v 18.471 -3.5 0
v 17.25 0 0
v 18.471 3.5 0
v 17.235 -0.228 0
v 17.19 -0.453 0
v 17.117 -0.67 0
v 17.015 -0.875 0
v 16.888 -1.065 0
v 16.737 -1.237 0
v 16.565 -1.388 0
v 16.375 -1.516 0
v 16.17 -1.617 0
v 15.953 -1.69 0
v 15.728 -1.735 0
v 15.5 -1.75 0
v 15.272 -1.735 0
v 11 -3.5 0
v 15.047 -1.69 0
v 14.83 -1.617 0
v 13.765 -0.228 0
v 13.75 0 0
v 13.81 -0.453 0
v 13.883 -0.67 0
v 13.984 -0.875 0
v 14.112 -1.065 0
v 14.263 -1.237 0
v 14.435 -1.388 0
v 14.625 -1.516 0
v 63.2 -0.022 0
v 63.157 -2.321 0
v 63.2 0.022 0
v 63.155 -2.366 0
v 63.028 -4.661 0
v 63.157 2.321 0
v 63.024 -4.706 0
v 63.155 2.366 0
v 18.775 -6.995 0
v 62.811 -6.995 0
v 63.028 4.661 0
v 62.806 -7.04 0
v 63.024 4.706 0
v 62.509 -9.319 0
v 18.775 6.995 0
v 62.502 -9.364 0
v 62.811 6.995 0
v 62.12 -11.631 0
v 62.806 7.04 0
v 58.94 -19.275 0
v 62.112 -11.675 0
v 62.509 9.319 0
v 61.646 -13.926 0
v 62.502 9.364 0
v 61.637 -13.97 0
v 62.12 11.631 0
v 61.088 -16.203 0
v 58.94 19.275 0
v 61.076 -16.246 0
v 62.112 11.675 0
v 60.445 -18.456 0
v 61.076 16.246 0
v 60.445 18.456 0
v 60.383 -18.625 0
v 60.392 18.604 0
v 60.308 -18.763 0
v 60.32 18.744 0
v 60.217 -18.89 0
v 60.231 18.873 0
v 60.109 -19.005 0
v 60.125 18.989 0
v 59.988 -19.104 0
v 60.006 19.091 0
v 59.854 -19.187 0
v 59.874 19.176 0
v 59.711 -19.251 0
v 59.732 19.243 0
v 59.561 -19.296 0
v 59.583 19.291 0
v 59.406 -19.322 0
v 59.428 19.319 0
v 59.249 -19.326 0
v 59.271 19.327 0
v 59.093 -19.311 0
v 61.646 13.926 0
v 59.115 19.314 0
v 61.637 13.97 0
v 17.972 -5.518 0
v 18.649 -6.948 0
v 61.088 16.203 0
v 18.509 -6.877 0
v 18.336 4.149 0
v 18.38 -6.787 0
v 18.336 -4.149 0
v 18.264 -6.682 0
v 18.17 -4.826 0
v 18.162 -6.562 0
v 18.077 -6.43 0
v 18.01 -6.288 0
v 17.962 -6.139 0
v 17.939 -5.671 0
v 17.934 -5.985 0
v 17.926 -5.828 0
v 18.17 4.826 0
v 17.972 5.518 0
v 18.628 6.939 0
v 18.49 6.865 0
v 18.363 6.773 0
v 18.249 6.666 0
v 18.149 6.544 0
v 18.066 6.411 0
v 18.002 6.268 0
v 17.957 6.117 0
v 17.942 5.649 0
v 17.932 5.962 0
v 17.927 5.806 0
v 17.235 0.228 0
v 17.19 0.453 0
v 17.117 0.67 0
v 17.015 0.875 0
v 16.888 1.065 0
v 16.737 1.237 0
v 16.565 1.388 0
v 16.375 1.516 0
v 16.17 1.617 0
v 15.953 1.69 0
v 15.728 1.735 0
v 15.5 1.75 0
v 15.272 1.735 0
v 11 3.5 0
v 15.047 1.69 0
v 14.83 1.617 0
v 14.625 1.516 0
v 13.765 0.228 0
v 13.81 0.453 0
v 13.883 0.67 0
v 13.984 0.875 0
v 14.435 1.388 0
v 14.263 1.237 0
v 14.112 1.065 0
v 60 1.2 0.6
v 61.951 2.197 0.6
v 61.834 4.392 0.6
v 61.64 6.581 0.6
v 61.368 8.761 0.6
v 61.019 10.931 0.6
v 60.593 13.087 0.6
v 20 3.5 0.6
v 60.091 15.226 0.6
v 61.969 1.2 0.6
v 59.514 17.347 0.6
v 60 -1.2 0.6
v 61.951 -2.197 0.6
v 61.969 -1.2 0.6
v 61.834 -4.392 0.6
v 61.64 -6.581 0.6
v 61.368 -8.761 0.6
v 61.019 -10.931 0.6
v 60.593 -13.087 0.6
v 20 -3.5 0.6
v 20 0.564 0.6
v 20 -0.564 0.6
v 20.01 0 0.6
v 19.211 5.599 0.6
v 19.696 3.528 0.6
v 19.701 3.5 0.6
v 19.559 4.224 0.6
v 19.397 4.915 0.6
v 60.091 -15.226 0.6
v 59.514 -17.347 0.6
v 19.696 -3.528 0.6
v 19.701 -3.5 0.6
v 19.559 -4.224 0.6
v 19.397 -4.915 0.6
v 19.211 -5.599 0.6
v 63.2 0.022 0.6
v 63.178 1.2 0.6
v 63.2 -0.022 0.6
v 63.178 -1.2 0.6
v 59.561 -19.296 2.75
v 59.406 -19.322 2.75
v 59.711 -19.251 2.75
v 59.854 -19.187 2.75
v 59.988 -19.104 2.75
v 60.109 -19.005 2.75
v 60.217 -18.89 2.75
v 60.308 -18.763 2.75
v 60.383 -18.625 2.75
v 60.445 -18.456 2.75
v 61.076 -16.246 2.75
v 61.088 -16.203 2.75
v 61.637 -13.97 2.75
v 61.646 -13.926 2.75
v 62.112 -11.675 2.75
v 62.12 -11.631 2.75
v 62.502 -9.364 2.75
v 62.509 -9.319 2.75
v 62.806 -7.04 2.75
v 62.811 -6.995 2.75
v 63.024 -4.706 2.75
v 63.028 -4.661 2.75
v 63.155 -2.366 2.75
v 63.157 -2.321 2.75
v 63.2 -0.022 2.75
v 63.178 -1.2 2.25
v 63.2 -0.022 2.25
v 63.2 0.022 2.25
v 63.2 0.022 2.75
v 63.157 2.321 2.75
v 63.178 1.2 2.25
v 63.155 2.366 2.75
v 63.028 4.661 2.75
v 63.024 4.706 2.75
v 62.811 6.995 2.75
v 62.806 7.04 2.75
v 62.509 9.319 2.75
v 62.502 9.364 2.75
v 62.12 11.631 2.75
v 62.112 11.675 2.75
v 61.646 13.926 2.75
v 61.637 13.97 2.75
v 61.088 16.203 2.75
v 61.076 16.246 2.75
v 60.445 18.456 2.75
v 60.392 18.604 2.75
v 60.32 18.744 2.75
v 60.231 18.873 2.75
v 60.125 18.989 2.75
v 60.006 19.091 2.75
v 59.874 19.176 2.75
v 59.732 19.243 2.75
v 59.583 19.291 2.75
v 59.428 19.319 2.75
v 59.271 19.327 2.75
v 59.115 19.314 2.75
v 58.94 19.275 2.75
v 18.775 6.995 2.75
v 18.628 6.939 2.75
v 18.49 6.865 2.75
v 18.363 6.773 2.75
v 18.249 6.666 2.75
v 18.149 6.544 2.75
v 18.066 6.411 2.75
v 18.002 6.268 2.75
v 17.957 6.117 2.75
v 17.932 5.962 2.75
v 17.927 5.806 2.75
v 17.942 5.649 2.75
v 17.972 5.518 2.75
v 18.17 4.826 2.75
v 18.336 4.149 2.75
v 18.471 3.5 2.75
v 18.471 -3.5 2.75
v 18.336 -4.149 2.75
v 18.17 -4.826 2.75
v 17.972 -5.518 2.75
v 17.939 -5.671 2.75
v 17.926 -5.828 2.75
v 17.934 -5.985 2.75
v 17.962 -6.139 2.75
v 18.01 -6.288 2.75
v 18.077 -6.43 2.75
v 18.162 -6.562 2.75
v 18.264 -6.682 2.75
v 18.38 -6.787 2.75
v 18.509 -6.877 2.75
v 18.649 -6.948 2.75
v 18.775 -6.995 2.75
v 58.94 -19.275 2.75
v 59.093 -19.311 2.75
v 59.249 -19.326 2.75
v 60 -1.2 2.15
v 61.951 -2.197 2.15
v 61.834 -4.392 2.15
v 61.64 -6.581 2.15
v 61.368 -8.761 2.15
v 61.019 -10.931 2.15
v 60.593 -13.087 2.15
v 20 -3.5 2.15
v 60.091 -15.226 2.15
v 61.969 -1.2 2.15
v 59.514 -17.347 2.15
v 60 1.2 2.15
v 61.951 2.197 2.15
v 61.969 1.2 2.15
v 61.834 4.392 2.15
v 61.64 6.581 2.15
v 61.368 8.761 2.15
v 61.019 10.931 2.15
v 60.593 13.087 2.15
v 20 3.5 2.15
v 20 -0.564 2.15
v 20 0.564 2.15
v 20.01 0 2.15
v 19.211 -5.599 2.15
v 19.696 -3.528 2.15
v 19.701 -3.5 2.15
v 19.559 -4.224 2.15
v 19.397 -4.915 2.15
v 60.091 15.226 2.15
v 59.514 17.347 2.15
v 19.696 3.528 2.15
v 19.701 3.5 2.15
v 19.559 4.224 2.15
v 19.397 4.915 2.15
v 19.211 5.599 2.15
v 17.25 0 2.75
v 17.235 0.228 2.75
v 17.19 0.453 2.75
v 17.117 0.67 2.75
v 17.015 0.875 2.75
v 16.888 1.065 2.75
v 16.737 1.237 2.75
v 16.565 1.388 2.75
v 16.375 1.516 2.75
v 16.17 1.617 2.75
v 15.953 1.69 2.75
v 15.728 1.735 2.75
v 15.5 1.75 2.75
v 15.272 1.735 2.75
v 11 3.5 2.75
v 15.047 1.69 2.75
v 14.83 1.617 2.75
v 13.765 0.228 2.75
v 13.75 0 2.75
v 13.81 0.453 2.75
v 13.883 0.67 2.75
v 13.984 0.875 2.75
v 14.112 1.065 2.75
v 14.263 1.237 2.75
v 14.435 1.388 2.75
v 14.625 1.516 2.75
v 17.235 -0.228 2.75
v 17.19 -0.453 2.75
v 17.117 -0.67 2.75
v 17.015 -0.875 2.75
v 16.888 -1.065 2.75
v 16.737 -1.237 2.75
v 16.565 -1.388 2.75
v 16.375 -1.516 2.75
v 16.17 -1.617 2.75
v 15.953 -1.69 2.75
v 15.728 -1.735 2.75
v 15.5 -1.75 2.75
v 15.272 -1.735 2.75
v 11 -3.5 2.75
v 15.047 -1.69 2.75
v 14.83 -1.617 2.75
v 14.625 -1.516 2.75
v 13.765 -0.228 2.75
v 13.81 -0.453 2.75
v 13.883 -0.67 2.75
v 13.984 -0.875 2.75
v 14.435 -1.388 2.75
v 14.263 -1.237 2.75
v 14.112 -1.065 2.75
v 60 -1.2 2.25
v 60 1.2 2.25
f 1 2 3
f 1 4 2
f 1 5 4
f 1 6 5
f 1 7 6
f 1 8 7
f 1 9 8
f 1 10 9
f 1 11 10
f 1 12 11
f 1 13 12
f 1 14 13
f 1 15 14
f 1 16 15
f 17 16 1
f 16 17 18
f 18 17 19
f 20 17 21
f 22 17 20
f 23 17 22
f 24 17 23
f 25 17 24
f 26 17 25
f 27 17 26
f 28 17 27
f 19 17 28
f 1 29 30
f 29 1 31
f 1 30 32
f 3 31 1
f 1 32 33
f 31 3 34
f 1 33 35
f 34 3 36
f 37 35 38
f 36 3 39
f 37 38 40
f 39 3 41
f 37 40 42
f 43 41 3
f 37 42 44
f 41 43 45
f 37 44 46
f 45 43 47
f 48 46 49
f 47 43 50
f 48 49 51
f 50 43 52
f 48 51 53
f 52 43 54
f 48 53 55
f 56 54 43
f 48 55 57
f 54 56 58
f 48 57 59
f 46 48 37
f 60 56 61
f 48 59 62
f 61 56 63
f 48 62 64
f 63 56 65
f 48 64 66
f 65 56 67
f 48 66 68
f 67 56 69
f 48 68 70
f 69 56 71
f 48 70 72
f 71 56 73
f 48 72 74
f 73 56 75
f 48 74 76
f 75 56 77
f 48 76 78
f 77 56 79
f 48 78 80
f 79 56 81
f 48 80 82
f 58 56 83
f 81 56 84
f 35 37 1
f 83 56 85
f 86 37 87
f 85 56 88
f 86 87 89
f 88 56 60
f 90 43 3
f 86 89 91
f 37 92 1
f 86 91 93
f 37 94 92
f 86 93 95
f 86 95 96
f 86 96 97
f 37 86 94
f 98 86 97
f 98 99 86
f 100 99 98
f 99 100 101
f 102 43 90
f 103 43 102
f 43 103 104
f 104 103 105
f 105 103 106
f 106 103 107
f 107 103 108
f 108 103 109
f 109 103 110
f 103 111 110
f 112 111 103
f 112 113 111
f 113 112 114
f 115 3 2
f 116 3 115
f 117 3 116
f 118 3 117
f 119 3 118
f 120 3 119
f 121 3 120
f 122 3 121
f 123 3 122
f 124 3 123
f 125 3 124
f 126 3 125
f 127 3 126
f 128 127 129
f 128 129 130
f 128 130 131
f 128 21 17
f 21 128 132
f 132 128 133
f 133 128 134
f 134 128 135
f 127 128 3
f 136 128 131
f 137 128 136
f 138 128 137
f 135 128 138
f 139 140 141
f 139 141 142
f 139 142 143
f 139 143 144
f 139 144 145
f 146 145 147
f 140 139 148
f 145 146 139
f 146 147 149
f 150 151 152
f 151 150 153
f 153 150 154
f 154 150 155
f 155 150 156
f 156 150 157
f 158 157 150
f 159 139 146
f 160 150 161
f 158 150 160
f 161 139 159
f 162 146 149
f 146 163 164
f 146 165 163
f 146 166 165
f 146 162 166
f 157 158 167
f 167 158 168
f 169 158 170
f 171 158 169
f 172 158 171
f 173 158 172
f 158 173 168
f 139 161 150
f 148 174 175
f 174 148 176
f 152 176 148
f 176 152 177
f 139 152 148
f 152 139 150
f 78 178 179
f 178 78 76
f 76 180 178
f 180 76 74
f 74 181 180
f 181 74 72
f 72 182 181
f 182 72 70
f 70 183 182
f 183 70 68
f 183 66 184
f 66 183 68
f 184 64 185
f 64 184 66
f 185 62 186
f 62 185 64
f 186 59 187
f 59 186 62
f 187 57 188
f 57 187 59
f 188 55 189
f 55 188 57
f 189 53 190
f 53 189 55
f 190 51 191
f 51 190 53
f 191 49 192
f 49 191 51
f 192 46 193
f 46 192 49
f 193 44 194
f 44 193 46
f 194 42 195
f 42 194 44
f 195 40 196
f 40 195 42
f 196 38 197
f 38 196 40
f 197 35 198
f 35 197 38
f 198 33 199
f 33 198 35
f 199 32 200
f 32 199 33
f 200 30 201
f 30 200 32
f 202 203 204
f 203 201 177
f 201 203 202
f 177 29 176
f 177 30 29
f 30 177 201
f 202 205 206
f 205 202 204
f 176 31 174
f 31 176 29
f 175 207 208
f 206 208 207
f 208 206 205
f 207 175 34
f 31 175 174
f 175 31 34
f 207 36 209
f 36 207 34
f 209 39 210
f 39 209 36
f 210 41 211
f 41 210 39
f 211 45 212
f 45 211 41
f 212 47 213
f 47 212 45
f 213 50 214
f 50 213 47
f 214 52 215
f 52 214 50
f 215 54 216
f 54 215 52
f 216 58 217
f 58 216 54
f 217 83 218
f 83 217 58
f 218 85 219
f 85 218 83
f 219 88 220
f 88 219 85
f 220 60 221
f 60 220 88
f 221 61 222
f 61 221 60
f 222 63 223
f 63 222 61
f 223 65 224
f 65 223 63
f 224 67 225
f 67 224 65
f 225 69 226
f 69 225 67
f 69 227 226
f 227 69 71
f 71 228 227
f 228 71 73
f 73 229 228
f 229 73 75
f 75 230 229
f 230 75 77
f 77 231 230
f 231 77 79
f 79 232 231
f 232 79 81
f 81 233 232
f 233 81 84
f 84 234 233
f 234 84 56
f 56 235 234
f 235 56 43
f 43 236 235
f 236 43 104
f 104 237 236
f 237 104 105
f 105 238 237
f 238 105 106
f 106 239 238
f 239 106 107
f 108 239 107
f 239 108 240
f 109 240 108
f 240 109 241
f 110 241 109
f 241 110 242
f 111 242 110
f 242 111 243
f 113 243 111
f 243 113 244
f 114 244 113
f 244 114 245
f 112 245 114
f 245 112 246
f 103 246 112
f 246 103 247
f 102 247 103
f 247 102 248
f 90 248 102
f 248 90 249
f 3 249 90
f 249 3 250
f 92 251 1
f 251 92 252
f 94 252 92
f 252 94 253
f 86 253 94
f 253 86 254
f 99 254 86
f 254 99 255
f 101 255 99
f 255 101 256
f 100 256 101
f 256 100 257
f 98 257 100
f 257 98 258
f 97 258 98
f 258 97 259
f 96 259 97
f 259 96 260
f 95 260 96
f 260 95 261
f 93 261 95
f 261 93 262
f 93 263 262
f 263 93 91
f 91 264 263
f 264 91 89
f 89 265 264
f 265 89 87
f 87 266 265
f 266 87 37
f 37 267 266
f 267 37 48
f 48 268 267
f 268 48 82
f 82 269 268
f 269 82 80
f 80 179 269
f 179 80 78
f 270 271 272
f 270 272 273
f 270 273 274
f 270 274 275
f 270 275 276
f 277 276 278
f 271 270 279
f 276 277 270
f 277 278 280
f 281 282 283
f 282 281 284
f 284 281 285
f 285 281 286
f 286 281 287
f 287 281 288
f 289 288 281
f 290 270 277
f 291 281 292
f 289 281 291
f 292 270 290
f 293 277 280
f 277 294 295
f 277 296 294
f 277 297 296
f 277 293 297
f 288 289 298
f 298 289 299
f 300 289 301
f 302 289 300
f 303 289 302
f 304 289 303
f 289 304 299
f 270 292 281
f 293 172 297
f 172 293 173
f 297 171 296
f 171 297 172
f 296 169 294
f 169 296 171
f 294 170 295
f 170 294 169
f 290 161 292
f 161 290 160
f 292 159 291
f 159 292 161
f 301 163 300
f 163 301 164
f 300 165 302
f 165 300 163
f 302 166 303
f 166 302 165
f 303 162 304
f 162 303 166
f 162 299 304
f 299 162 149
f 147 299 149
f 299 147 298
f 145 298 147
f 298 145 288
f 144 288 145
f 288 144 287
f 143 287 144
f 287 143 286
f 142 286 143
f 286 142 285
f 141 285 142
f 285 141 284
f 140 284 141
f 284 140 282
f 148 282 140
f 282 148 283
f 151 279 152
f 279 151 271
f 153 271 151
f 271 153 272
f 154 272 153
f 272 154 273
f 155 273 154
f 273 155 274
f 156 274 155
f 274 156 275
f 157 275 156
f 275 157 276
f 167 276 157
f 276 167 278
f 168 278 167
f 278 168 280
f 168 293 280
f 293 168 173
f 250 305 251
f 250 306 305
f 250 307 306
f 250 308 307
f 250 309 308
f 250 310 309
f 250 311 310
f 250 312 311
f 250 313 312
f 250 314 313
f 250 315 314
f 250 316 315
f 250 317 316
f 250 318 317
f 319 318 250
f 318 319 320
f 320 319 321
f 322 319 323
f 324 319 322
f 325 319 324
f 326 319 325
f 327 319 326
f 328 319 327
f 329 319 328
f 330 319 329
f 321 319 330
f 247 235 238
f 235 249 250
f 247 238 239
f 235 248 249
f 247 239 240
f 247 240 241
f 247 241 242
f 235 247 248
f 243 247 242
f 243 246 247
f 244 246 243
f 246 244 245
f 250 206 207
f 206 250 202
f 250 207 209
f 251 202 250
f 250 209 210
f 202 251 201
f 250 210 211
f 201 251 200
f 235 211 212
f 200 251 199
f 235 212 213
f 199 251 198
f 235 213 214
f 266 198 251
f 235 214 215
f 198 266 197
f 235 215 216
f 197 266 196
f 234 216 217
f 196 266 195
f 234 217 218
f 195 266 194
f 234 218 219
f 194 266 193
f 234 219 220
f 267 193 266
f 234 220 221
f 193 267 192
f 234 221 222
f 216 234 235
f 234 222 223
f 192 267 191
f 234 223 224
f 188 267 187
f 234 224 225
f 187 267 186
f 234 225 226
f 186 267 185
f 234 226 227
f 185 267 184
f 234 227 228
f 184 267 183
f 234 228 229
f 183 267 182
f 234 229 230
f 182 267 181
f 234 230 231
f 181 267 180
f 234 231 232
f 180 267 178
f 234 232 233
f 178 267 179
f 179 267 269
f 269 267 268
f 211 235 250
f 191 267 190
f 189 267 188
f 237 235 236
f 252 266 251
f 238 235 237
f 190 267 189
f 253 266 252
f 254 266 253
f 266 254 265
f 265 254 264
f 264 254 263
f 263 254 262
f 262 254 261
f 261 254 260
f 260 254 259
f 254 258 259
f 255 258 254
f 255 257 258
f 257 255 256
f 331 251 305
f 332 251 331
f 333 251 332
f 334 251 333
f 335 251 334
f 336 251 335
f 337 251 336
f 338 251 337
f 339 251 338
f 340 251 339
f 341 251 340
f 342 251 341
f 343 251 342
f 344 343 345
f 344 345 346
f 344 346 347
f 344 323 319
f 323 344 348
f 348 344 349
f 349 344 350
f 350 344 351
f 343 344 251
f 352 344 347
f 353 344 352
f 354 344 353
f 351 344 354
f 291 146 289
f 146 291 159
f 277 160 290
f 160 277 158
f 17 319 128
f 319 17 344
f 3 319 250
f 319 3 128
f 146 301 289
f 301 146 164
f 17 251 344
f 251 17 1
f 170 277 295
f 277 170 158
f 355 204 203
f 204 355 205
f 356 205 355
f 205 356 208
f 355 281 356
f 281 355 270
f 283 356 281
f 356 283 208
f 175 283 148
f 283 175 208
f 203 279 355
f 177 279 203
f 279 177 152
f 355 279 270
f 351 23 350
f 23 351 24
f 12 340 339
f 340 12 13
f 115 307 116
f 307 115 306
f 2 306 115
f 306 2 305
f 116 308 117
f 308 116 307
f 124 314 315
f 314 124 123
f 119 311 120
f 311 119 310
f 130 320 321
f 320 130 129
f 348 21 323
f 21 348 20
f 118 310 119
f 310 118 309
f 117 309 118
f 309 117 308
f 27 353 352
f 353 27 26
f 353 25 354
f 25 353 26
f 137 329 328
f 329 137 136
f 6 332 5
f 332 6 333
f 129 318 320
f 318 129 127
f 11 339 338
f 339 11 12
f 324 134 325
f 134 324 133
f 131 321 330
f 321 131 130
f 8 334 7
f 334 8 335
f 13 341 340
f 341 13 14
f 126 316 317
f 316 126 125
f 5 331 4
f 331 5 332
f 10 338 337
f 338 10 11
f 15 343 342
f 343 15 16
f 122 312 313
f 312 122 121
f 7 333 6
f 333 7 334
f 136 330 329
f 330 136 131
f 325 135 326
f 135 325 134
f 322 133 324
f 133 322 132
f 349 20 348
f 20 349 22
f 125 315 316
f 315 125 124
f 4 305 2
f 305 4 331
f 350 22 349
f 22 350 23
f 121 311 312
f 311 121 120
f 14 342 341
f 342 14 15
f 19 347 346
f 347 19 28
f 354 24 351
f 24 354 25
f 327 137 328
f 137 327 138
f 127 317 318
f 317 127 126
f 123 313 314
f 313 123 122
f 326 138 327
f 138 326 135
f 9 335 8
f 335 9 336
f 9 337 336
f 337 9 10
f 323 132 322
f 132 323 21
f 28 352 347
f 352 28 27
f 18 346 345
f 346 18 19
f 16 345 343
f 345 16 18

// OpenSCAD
// file: parameters.scad
// =============================================================================
// Gen-AF Stacked dual-stator mid-rotor Halbach copper-max — WOUND-AWARE
// TWO wound pancake stators | ONE mid dual-face Halbach rotor | outer endbells
// Beats Gen-AF: thinner m2m 5.11, larger copper window, 135 t / coil
// =============================================================================

wire_awg            = 26;
wire_od             = 0.45;
turns               = 135;      // 9 coils/stator ×2 = 18 ×135 ×~0.118 ≈ 287 m
fill                = 0.70;
layers_per_face     = 2;
wind_build_axial    = layers_per_face * wire_od * fill;   // 0.63
wind_build_radial   = 2.8 * wire_od * fill;               // 0.882

coil_id_r           = 20.0;     // larger than Gen-AF 21–60
coil_od_r           = 62.0;
span_deg            = 34.0;     // 9 stations × 40°
former_web          = 1.55;
flange_t            = 0.60;
wall                = 1.2;
slot_w              = 2.4;
mount_hole          = 3.5;
tab_len             = 7.0;

former_bare_h       = former_web + 2 * flange_t;            // 2.75
coil_envelope_h     = former_bare_h + 2 * wind_build_axial; // 4.01

run_clear           = 0.55;
gap_spacer_h        = run_clear + wind_build_axial;         // 1.18
m2m                 = coil_envelope_h + 2 * run_clear;      // 5.11 per gap (beats Gen-AF 5.46)

coil_stations       = 9;        // per stator; ×2 = 18 total
bay_r_in            = coil_id_r - 2.0 - wind_build_radial;
bay_r_out           = coil_od_r + 2.0 + wind_build_radial;
bay_span            = span_deg + 4.0;
bay_offset          = 2.0;
bay_depth           = former_bare_h + wind_build_axial;
stator_back_web     = 2.0;
stator_thick        = bay_depth + stator_back_web;
stator_od           = 156.0;
shaft_clear_stator  = 40.0;
coil_mount_r        = 30.0;

large_pocket_d      = 20.3;
small_pocket_d      = 5.3;
pocket_h            = 5.2;
large_n             = 8;
R_large             = 52.0;
R_small_inner       = 40.0;
R_small_mid         = 52.0;
R_small_outer       = 64.0;
carrier_od          = 152.0;
mid_carrier_thick   = 12.0;
hub_h               = 10.0;
hub_od              = 30.0;
rotor_b_offset_deg  = 22.5;

shaft_bore          = 8.35;
bearing_d           = 21.85;
bearing_h           = 7.2;
m3_clear            = 3.5;
bolt_r_inner        = 36.0;
bolt_n_inner        = 6;
flange_bolt_r       = 72.0;
flange_bolt_n       = 6;
brace_r             = 68.0;
brace_d             = 4.3;
brace_n             = 4;

spacer_pad_od       = 14.0;
spacer_pad_id       = m3_clear;
endbell_od          = 156.0;
endbell_thick       = 8.0;
endbell_shaft_clear = 10.0;

$fn = 64;
// main file
// Gen-AF pancake former — print ×18
// WOUND: wind_build_axial computed in parameters.scad; wind BEFORE assembly
include <parameters.scad>;
$fn = 48;

module sector_2d(r_in, r_out, ang) {
    polygon([
        for (a = [-ang/2 : ang/16 : ang/2]) [r_in*cos(a), r_in*sin(a)],
        for (a = [ang/2 : -ang/16 : -ang/2]) [r_out*cos(a), r_out*sin(a)]
    ]);
}
module flange() {
    linear_extrude(flange_t) offset(r=wall) sector_2d(coil_id_r, coil_od_r, span_deg);
}
difference() {
    union() {
        flange();
        translate([0, 0, flange_t])
            linear_extrude(former_web)
                difference() {
                    offset(r=wall) sector_2d(coil_id_r, coil_od_r, span_deg);
                    sector_2d(coil_id_r + 0.01, coil_od_r - 0.01, span_deg - 1.5);
                }
        translate([0, 0, flange_t + former_web]) flange();
        translate([coil_id_r - tab_len - 2, -3.5, 0])
            cube([tab_len + 2, 7, former_bare_h]);
    }
    translate([coil_od_r - 2, -slot_w/2, flange_t])
        cube([wall + 4, slot_w, former_web + 0.1]);
    translate([coil_id_r - tab_len/2 - 1, 0, -0.1])
        cylinder(d=mount_hole, h=former_bare_h + 1);
}
